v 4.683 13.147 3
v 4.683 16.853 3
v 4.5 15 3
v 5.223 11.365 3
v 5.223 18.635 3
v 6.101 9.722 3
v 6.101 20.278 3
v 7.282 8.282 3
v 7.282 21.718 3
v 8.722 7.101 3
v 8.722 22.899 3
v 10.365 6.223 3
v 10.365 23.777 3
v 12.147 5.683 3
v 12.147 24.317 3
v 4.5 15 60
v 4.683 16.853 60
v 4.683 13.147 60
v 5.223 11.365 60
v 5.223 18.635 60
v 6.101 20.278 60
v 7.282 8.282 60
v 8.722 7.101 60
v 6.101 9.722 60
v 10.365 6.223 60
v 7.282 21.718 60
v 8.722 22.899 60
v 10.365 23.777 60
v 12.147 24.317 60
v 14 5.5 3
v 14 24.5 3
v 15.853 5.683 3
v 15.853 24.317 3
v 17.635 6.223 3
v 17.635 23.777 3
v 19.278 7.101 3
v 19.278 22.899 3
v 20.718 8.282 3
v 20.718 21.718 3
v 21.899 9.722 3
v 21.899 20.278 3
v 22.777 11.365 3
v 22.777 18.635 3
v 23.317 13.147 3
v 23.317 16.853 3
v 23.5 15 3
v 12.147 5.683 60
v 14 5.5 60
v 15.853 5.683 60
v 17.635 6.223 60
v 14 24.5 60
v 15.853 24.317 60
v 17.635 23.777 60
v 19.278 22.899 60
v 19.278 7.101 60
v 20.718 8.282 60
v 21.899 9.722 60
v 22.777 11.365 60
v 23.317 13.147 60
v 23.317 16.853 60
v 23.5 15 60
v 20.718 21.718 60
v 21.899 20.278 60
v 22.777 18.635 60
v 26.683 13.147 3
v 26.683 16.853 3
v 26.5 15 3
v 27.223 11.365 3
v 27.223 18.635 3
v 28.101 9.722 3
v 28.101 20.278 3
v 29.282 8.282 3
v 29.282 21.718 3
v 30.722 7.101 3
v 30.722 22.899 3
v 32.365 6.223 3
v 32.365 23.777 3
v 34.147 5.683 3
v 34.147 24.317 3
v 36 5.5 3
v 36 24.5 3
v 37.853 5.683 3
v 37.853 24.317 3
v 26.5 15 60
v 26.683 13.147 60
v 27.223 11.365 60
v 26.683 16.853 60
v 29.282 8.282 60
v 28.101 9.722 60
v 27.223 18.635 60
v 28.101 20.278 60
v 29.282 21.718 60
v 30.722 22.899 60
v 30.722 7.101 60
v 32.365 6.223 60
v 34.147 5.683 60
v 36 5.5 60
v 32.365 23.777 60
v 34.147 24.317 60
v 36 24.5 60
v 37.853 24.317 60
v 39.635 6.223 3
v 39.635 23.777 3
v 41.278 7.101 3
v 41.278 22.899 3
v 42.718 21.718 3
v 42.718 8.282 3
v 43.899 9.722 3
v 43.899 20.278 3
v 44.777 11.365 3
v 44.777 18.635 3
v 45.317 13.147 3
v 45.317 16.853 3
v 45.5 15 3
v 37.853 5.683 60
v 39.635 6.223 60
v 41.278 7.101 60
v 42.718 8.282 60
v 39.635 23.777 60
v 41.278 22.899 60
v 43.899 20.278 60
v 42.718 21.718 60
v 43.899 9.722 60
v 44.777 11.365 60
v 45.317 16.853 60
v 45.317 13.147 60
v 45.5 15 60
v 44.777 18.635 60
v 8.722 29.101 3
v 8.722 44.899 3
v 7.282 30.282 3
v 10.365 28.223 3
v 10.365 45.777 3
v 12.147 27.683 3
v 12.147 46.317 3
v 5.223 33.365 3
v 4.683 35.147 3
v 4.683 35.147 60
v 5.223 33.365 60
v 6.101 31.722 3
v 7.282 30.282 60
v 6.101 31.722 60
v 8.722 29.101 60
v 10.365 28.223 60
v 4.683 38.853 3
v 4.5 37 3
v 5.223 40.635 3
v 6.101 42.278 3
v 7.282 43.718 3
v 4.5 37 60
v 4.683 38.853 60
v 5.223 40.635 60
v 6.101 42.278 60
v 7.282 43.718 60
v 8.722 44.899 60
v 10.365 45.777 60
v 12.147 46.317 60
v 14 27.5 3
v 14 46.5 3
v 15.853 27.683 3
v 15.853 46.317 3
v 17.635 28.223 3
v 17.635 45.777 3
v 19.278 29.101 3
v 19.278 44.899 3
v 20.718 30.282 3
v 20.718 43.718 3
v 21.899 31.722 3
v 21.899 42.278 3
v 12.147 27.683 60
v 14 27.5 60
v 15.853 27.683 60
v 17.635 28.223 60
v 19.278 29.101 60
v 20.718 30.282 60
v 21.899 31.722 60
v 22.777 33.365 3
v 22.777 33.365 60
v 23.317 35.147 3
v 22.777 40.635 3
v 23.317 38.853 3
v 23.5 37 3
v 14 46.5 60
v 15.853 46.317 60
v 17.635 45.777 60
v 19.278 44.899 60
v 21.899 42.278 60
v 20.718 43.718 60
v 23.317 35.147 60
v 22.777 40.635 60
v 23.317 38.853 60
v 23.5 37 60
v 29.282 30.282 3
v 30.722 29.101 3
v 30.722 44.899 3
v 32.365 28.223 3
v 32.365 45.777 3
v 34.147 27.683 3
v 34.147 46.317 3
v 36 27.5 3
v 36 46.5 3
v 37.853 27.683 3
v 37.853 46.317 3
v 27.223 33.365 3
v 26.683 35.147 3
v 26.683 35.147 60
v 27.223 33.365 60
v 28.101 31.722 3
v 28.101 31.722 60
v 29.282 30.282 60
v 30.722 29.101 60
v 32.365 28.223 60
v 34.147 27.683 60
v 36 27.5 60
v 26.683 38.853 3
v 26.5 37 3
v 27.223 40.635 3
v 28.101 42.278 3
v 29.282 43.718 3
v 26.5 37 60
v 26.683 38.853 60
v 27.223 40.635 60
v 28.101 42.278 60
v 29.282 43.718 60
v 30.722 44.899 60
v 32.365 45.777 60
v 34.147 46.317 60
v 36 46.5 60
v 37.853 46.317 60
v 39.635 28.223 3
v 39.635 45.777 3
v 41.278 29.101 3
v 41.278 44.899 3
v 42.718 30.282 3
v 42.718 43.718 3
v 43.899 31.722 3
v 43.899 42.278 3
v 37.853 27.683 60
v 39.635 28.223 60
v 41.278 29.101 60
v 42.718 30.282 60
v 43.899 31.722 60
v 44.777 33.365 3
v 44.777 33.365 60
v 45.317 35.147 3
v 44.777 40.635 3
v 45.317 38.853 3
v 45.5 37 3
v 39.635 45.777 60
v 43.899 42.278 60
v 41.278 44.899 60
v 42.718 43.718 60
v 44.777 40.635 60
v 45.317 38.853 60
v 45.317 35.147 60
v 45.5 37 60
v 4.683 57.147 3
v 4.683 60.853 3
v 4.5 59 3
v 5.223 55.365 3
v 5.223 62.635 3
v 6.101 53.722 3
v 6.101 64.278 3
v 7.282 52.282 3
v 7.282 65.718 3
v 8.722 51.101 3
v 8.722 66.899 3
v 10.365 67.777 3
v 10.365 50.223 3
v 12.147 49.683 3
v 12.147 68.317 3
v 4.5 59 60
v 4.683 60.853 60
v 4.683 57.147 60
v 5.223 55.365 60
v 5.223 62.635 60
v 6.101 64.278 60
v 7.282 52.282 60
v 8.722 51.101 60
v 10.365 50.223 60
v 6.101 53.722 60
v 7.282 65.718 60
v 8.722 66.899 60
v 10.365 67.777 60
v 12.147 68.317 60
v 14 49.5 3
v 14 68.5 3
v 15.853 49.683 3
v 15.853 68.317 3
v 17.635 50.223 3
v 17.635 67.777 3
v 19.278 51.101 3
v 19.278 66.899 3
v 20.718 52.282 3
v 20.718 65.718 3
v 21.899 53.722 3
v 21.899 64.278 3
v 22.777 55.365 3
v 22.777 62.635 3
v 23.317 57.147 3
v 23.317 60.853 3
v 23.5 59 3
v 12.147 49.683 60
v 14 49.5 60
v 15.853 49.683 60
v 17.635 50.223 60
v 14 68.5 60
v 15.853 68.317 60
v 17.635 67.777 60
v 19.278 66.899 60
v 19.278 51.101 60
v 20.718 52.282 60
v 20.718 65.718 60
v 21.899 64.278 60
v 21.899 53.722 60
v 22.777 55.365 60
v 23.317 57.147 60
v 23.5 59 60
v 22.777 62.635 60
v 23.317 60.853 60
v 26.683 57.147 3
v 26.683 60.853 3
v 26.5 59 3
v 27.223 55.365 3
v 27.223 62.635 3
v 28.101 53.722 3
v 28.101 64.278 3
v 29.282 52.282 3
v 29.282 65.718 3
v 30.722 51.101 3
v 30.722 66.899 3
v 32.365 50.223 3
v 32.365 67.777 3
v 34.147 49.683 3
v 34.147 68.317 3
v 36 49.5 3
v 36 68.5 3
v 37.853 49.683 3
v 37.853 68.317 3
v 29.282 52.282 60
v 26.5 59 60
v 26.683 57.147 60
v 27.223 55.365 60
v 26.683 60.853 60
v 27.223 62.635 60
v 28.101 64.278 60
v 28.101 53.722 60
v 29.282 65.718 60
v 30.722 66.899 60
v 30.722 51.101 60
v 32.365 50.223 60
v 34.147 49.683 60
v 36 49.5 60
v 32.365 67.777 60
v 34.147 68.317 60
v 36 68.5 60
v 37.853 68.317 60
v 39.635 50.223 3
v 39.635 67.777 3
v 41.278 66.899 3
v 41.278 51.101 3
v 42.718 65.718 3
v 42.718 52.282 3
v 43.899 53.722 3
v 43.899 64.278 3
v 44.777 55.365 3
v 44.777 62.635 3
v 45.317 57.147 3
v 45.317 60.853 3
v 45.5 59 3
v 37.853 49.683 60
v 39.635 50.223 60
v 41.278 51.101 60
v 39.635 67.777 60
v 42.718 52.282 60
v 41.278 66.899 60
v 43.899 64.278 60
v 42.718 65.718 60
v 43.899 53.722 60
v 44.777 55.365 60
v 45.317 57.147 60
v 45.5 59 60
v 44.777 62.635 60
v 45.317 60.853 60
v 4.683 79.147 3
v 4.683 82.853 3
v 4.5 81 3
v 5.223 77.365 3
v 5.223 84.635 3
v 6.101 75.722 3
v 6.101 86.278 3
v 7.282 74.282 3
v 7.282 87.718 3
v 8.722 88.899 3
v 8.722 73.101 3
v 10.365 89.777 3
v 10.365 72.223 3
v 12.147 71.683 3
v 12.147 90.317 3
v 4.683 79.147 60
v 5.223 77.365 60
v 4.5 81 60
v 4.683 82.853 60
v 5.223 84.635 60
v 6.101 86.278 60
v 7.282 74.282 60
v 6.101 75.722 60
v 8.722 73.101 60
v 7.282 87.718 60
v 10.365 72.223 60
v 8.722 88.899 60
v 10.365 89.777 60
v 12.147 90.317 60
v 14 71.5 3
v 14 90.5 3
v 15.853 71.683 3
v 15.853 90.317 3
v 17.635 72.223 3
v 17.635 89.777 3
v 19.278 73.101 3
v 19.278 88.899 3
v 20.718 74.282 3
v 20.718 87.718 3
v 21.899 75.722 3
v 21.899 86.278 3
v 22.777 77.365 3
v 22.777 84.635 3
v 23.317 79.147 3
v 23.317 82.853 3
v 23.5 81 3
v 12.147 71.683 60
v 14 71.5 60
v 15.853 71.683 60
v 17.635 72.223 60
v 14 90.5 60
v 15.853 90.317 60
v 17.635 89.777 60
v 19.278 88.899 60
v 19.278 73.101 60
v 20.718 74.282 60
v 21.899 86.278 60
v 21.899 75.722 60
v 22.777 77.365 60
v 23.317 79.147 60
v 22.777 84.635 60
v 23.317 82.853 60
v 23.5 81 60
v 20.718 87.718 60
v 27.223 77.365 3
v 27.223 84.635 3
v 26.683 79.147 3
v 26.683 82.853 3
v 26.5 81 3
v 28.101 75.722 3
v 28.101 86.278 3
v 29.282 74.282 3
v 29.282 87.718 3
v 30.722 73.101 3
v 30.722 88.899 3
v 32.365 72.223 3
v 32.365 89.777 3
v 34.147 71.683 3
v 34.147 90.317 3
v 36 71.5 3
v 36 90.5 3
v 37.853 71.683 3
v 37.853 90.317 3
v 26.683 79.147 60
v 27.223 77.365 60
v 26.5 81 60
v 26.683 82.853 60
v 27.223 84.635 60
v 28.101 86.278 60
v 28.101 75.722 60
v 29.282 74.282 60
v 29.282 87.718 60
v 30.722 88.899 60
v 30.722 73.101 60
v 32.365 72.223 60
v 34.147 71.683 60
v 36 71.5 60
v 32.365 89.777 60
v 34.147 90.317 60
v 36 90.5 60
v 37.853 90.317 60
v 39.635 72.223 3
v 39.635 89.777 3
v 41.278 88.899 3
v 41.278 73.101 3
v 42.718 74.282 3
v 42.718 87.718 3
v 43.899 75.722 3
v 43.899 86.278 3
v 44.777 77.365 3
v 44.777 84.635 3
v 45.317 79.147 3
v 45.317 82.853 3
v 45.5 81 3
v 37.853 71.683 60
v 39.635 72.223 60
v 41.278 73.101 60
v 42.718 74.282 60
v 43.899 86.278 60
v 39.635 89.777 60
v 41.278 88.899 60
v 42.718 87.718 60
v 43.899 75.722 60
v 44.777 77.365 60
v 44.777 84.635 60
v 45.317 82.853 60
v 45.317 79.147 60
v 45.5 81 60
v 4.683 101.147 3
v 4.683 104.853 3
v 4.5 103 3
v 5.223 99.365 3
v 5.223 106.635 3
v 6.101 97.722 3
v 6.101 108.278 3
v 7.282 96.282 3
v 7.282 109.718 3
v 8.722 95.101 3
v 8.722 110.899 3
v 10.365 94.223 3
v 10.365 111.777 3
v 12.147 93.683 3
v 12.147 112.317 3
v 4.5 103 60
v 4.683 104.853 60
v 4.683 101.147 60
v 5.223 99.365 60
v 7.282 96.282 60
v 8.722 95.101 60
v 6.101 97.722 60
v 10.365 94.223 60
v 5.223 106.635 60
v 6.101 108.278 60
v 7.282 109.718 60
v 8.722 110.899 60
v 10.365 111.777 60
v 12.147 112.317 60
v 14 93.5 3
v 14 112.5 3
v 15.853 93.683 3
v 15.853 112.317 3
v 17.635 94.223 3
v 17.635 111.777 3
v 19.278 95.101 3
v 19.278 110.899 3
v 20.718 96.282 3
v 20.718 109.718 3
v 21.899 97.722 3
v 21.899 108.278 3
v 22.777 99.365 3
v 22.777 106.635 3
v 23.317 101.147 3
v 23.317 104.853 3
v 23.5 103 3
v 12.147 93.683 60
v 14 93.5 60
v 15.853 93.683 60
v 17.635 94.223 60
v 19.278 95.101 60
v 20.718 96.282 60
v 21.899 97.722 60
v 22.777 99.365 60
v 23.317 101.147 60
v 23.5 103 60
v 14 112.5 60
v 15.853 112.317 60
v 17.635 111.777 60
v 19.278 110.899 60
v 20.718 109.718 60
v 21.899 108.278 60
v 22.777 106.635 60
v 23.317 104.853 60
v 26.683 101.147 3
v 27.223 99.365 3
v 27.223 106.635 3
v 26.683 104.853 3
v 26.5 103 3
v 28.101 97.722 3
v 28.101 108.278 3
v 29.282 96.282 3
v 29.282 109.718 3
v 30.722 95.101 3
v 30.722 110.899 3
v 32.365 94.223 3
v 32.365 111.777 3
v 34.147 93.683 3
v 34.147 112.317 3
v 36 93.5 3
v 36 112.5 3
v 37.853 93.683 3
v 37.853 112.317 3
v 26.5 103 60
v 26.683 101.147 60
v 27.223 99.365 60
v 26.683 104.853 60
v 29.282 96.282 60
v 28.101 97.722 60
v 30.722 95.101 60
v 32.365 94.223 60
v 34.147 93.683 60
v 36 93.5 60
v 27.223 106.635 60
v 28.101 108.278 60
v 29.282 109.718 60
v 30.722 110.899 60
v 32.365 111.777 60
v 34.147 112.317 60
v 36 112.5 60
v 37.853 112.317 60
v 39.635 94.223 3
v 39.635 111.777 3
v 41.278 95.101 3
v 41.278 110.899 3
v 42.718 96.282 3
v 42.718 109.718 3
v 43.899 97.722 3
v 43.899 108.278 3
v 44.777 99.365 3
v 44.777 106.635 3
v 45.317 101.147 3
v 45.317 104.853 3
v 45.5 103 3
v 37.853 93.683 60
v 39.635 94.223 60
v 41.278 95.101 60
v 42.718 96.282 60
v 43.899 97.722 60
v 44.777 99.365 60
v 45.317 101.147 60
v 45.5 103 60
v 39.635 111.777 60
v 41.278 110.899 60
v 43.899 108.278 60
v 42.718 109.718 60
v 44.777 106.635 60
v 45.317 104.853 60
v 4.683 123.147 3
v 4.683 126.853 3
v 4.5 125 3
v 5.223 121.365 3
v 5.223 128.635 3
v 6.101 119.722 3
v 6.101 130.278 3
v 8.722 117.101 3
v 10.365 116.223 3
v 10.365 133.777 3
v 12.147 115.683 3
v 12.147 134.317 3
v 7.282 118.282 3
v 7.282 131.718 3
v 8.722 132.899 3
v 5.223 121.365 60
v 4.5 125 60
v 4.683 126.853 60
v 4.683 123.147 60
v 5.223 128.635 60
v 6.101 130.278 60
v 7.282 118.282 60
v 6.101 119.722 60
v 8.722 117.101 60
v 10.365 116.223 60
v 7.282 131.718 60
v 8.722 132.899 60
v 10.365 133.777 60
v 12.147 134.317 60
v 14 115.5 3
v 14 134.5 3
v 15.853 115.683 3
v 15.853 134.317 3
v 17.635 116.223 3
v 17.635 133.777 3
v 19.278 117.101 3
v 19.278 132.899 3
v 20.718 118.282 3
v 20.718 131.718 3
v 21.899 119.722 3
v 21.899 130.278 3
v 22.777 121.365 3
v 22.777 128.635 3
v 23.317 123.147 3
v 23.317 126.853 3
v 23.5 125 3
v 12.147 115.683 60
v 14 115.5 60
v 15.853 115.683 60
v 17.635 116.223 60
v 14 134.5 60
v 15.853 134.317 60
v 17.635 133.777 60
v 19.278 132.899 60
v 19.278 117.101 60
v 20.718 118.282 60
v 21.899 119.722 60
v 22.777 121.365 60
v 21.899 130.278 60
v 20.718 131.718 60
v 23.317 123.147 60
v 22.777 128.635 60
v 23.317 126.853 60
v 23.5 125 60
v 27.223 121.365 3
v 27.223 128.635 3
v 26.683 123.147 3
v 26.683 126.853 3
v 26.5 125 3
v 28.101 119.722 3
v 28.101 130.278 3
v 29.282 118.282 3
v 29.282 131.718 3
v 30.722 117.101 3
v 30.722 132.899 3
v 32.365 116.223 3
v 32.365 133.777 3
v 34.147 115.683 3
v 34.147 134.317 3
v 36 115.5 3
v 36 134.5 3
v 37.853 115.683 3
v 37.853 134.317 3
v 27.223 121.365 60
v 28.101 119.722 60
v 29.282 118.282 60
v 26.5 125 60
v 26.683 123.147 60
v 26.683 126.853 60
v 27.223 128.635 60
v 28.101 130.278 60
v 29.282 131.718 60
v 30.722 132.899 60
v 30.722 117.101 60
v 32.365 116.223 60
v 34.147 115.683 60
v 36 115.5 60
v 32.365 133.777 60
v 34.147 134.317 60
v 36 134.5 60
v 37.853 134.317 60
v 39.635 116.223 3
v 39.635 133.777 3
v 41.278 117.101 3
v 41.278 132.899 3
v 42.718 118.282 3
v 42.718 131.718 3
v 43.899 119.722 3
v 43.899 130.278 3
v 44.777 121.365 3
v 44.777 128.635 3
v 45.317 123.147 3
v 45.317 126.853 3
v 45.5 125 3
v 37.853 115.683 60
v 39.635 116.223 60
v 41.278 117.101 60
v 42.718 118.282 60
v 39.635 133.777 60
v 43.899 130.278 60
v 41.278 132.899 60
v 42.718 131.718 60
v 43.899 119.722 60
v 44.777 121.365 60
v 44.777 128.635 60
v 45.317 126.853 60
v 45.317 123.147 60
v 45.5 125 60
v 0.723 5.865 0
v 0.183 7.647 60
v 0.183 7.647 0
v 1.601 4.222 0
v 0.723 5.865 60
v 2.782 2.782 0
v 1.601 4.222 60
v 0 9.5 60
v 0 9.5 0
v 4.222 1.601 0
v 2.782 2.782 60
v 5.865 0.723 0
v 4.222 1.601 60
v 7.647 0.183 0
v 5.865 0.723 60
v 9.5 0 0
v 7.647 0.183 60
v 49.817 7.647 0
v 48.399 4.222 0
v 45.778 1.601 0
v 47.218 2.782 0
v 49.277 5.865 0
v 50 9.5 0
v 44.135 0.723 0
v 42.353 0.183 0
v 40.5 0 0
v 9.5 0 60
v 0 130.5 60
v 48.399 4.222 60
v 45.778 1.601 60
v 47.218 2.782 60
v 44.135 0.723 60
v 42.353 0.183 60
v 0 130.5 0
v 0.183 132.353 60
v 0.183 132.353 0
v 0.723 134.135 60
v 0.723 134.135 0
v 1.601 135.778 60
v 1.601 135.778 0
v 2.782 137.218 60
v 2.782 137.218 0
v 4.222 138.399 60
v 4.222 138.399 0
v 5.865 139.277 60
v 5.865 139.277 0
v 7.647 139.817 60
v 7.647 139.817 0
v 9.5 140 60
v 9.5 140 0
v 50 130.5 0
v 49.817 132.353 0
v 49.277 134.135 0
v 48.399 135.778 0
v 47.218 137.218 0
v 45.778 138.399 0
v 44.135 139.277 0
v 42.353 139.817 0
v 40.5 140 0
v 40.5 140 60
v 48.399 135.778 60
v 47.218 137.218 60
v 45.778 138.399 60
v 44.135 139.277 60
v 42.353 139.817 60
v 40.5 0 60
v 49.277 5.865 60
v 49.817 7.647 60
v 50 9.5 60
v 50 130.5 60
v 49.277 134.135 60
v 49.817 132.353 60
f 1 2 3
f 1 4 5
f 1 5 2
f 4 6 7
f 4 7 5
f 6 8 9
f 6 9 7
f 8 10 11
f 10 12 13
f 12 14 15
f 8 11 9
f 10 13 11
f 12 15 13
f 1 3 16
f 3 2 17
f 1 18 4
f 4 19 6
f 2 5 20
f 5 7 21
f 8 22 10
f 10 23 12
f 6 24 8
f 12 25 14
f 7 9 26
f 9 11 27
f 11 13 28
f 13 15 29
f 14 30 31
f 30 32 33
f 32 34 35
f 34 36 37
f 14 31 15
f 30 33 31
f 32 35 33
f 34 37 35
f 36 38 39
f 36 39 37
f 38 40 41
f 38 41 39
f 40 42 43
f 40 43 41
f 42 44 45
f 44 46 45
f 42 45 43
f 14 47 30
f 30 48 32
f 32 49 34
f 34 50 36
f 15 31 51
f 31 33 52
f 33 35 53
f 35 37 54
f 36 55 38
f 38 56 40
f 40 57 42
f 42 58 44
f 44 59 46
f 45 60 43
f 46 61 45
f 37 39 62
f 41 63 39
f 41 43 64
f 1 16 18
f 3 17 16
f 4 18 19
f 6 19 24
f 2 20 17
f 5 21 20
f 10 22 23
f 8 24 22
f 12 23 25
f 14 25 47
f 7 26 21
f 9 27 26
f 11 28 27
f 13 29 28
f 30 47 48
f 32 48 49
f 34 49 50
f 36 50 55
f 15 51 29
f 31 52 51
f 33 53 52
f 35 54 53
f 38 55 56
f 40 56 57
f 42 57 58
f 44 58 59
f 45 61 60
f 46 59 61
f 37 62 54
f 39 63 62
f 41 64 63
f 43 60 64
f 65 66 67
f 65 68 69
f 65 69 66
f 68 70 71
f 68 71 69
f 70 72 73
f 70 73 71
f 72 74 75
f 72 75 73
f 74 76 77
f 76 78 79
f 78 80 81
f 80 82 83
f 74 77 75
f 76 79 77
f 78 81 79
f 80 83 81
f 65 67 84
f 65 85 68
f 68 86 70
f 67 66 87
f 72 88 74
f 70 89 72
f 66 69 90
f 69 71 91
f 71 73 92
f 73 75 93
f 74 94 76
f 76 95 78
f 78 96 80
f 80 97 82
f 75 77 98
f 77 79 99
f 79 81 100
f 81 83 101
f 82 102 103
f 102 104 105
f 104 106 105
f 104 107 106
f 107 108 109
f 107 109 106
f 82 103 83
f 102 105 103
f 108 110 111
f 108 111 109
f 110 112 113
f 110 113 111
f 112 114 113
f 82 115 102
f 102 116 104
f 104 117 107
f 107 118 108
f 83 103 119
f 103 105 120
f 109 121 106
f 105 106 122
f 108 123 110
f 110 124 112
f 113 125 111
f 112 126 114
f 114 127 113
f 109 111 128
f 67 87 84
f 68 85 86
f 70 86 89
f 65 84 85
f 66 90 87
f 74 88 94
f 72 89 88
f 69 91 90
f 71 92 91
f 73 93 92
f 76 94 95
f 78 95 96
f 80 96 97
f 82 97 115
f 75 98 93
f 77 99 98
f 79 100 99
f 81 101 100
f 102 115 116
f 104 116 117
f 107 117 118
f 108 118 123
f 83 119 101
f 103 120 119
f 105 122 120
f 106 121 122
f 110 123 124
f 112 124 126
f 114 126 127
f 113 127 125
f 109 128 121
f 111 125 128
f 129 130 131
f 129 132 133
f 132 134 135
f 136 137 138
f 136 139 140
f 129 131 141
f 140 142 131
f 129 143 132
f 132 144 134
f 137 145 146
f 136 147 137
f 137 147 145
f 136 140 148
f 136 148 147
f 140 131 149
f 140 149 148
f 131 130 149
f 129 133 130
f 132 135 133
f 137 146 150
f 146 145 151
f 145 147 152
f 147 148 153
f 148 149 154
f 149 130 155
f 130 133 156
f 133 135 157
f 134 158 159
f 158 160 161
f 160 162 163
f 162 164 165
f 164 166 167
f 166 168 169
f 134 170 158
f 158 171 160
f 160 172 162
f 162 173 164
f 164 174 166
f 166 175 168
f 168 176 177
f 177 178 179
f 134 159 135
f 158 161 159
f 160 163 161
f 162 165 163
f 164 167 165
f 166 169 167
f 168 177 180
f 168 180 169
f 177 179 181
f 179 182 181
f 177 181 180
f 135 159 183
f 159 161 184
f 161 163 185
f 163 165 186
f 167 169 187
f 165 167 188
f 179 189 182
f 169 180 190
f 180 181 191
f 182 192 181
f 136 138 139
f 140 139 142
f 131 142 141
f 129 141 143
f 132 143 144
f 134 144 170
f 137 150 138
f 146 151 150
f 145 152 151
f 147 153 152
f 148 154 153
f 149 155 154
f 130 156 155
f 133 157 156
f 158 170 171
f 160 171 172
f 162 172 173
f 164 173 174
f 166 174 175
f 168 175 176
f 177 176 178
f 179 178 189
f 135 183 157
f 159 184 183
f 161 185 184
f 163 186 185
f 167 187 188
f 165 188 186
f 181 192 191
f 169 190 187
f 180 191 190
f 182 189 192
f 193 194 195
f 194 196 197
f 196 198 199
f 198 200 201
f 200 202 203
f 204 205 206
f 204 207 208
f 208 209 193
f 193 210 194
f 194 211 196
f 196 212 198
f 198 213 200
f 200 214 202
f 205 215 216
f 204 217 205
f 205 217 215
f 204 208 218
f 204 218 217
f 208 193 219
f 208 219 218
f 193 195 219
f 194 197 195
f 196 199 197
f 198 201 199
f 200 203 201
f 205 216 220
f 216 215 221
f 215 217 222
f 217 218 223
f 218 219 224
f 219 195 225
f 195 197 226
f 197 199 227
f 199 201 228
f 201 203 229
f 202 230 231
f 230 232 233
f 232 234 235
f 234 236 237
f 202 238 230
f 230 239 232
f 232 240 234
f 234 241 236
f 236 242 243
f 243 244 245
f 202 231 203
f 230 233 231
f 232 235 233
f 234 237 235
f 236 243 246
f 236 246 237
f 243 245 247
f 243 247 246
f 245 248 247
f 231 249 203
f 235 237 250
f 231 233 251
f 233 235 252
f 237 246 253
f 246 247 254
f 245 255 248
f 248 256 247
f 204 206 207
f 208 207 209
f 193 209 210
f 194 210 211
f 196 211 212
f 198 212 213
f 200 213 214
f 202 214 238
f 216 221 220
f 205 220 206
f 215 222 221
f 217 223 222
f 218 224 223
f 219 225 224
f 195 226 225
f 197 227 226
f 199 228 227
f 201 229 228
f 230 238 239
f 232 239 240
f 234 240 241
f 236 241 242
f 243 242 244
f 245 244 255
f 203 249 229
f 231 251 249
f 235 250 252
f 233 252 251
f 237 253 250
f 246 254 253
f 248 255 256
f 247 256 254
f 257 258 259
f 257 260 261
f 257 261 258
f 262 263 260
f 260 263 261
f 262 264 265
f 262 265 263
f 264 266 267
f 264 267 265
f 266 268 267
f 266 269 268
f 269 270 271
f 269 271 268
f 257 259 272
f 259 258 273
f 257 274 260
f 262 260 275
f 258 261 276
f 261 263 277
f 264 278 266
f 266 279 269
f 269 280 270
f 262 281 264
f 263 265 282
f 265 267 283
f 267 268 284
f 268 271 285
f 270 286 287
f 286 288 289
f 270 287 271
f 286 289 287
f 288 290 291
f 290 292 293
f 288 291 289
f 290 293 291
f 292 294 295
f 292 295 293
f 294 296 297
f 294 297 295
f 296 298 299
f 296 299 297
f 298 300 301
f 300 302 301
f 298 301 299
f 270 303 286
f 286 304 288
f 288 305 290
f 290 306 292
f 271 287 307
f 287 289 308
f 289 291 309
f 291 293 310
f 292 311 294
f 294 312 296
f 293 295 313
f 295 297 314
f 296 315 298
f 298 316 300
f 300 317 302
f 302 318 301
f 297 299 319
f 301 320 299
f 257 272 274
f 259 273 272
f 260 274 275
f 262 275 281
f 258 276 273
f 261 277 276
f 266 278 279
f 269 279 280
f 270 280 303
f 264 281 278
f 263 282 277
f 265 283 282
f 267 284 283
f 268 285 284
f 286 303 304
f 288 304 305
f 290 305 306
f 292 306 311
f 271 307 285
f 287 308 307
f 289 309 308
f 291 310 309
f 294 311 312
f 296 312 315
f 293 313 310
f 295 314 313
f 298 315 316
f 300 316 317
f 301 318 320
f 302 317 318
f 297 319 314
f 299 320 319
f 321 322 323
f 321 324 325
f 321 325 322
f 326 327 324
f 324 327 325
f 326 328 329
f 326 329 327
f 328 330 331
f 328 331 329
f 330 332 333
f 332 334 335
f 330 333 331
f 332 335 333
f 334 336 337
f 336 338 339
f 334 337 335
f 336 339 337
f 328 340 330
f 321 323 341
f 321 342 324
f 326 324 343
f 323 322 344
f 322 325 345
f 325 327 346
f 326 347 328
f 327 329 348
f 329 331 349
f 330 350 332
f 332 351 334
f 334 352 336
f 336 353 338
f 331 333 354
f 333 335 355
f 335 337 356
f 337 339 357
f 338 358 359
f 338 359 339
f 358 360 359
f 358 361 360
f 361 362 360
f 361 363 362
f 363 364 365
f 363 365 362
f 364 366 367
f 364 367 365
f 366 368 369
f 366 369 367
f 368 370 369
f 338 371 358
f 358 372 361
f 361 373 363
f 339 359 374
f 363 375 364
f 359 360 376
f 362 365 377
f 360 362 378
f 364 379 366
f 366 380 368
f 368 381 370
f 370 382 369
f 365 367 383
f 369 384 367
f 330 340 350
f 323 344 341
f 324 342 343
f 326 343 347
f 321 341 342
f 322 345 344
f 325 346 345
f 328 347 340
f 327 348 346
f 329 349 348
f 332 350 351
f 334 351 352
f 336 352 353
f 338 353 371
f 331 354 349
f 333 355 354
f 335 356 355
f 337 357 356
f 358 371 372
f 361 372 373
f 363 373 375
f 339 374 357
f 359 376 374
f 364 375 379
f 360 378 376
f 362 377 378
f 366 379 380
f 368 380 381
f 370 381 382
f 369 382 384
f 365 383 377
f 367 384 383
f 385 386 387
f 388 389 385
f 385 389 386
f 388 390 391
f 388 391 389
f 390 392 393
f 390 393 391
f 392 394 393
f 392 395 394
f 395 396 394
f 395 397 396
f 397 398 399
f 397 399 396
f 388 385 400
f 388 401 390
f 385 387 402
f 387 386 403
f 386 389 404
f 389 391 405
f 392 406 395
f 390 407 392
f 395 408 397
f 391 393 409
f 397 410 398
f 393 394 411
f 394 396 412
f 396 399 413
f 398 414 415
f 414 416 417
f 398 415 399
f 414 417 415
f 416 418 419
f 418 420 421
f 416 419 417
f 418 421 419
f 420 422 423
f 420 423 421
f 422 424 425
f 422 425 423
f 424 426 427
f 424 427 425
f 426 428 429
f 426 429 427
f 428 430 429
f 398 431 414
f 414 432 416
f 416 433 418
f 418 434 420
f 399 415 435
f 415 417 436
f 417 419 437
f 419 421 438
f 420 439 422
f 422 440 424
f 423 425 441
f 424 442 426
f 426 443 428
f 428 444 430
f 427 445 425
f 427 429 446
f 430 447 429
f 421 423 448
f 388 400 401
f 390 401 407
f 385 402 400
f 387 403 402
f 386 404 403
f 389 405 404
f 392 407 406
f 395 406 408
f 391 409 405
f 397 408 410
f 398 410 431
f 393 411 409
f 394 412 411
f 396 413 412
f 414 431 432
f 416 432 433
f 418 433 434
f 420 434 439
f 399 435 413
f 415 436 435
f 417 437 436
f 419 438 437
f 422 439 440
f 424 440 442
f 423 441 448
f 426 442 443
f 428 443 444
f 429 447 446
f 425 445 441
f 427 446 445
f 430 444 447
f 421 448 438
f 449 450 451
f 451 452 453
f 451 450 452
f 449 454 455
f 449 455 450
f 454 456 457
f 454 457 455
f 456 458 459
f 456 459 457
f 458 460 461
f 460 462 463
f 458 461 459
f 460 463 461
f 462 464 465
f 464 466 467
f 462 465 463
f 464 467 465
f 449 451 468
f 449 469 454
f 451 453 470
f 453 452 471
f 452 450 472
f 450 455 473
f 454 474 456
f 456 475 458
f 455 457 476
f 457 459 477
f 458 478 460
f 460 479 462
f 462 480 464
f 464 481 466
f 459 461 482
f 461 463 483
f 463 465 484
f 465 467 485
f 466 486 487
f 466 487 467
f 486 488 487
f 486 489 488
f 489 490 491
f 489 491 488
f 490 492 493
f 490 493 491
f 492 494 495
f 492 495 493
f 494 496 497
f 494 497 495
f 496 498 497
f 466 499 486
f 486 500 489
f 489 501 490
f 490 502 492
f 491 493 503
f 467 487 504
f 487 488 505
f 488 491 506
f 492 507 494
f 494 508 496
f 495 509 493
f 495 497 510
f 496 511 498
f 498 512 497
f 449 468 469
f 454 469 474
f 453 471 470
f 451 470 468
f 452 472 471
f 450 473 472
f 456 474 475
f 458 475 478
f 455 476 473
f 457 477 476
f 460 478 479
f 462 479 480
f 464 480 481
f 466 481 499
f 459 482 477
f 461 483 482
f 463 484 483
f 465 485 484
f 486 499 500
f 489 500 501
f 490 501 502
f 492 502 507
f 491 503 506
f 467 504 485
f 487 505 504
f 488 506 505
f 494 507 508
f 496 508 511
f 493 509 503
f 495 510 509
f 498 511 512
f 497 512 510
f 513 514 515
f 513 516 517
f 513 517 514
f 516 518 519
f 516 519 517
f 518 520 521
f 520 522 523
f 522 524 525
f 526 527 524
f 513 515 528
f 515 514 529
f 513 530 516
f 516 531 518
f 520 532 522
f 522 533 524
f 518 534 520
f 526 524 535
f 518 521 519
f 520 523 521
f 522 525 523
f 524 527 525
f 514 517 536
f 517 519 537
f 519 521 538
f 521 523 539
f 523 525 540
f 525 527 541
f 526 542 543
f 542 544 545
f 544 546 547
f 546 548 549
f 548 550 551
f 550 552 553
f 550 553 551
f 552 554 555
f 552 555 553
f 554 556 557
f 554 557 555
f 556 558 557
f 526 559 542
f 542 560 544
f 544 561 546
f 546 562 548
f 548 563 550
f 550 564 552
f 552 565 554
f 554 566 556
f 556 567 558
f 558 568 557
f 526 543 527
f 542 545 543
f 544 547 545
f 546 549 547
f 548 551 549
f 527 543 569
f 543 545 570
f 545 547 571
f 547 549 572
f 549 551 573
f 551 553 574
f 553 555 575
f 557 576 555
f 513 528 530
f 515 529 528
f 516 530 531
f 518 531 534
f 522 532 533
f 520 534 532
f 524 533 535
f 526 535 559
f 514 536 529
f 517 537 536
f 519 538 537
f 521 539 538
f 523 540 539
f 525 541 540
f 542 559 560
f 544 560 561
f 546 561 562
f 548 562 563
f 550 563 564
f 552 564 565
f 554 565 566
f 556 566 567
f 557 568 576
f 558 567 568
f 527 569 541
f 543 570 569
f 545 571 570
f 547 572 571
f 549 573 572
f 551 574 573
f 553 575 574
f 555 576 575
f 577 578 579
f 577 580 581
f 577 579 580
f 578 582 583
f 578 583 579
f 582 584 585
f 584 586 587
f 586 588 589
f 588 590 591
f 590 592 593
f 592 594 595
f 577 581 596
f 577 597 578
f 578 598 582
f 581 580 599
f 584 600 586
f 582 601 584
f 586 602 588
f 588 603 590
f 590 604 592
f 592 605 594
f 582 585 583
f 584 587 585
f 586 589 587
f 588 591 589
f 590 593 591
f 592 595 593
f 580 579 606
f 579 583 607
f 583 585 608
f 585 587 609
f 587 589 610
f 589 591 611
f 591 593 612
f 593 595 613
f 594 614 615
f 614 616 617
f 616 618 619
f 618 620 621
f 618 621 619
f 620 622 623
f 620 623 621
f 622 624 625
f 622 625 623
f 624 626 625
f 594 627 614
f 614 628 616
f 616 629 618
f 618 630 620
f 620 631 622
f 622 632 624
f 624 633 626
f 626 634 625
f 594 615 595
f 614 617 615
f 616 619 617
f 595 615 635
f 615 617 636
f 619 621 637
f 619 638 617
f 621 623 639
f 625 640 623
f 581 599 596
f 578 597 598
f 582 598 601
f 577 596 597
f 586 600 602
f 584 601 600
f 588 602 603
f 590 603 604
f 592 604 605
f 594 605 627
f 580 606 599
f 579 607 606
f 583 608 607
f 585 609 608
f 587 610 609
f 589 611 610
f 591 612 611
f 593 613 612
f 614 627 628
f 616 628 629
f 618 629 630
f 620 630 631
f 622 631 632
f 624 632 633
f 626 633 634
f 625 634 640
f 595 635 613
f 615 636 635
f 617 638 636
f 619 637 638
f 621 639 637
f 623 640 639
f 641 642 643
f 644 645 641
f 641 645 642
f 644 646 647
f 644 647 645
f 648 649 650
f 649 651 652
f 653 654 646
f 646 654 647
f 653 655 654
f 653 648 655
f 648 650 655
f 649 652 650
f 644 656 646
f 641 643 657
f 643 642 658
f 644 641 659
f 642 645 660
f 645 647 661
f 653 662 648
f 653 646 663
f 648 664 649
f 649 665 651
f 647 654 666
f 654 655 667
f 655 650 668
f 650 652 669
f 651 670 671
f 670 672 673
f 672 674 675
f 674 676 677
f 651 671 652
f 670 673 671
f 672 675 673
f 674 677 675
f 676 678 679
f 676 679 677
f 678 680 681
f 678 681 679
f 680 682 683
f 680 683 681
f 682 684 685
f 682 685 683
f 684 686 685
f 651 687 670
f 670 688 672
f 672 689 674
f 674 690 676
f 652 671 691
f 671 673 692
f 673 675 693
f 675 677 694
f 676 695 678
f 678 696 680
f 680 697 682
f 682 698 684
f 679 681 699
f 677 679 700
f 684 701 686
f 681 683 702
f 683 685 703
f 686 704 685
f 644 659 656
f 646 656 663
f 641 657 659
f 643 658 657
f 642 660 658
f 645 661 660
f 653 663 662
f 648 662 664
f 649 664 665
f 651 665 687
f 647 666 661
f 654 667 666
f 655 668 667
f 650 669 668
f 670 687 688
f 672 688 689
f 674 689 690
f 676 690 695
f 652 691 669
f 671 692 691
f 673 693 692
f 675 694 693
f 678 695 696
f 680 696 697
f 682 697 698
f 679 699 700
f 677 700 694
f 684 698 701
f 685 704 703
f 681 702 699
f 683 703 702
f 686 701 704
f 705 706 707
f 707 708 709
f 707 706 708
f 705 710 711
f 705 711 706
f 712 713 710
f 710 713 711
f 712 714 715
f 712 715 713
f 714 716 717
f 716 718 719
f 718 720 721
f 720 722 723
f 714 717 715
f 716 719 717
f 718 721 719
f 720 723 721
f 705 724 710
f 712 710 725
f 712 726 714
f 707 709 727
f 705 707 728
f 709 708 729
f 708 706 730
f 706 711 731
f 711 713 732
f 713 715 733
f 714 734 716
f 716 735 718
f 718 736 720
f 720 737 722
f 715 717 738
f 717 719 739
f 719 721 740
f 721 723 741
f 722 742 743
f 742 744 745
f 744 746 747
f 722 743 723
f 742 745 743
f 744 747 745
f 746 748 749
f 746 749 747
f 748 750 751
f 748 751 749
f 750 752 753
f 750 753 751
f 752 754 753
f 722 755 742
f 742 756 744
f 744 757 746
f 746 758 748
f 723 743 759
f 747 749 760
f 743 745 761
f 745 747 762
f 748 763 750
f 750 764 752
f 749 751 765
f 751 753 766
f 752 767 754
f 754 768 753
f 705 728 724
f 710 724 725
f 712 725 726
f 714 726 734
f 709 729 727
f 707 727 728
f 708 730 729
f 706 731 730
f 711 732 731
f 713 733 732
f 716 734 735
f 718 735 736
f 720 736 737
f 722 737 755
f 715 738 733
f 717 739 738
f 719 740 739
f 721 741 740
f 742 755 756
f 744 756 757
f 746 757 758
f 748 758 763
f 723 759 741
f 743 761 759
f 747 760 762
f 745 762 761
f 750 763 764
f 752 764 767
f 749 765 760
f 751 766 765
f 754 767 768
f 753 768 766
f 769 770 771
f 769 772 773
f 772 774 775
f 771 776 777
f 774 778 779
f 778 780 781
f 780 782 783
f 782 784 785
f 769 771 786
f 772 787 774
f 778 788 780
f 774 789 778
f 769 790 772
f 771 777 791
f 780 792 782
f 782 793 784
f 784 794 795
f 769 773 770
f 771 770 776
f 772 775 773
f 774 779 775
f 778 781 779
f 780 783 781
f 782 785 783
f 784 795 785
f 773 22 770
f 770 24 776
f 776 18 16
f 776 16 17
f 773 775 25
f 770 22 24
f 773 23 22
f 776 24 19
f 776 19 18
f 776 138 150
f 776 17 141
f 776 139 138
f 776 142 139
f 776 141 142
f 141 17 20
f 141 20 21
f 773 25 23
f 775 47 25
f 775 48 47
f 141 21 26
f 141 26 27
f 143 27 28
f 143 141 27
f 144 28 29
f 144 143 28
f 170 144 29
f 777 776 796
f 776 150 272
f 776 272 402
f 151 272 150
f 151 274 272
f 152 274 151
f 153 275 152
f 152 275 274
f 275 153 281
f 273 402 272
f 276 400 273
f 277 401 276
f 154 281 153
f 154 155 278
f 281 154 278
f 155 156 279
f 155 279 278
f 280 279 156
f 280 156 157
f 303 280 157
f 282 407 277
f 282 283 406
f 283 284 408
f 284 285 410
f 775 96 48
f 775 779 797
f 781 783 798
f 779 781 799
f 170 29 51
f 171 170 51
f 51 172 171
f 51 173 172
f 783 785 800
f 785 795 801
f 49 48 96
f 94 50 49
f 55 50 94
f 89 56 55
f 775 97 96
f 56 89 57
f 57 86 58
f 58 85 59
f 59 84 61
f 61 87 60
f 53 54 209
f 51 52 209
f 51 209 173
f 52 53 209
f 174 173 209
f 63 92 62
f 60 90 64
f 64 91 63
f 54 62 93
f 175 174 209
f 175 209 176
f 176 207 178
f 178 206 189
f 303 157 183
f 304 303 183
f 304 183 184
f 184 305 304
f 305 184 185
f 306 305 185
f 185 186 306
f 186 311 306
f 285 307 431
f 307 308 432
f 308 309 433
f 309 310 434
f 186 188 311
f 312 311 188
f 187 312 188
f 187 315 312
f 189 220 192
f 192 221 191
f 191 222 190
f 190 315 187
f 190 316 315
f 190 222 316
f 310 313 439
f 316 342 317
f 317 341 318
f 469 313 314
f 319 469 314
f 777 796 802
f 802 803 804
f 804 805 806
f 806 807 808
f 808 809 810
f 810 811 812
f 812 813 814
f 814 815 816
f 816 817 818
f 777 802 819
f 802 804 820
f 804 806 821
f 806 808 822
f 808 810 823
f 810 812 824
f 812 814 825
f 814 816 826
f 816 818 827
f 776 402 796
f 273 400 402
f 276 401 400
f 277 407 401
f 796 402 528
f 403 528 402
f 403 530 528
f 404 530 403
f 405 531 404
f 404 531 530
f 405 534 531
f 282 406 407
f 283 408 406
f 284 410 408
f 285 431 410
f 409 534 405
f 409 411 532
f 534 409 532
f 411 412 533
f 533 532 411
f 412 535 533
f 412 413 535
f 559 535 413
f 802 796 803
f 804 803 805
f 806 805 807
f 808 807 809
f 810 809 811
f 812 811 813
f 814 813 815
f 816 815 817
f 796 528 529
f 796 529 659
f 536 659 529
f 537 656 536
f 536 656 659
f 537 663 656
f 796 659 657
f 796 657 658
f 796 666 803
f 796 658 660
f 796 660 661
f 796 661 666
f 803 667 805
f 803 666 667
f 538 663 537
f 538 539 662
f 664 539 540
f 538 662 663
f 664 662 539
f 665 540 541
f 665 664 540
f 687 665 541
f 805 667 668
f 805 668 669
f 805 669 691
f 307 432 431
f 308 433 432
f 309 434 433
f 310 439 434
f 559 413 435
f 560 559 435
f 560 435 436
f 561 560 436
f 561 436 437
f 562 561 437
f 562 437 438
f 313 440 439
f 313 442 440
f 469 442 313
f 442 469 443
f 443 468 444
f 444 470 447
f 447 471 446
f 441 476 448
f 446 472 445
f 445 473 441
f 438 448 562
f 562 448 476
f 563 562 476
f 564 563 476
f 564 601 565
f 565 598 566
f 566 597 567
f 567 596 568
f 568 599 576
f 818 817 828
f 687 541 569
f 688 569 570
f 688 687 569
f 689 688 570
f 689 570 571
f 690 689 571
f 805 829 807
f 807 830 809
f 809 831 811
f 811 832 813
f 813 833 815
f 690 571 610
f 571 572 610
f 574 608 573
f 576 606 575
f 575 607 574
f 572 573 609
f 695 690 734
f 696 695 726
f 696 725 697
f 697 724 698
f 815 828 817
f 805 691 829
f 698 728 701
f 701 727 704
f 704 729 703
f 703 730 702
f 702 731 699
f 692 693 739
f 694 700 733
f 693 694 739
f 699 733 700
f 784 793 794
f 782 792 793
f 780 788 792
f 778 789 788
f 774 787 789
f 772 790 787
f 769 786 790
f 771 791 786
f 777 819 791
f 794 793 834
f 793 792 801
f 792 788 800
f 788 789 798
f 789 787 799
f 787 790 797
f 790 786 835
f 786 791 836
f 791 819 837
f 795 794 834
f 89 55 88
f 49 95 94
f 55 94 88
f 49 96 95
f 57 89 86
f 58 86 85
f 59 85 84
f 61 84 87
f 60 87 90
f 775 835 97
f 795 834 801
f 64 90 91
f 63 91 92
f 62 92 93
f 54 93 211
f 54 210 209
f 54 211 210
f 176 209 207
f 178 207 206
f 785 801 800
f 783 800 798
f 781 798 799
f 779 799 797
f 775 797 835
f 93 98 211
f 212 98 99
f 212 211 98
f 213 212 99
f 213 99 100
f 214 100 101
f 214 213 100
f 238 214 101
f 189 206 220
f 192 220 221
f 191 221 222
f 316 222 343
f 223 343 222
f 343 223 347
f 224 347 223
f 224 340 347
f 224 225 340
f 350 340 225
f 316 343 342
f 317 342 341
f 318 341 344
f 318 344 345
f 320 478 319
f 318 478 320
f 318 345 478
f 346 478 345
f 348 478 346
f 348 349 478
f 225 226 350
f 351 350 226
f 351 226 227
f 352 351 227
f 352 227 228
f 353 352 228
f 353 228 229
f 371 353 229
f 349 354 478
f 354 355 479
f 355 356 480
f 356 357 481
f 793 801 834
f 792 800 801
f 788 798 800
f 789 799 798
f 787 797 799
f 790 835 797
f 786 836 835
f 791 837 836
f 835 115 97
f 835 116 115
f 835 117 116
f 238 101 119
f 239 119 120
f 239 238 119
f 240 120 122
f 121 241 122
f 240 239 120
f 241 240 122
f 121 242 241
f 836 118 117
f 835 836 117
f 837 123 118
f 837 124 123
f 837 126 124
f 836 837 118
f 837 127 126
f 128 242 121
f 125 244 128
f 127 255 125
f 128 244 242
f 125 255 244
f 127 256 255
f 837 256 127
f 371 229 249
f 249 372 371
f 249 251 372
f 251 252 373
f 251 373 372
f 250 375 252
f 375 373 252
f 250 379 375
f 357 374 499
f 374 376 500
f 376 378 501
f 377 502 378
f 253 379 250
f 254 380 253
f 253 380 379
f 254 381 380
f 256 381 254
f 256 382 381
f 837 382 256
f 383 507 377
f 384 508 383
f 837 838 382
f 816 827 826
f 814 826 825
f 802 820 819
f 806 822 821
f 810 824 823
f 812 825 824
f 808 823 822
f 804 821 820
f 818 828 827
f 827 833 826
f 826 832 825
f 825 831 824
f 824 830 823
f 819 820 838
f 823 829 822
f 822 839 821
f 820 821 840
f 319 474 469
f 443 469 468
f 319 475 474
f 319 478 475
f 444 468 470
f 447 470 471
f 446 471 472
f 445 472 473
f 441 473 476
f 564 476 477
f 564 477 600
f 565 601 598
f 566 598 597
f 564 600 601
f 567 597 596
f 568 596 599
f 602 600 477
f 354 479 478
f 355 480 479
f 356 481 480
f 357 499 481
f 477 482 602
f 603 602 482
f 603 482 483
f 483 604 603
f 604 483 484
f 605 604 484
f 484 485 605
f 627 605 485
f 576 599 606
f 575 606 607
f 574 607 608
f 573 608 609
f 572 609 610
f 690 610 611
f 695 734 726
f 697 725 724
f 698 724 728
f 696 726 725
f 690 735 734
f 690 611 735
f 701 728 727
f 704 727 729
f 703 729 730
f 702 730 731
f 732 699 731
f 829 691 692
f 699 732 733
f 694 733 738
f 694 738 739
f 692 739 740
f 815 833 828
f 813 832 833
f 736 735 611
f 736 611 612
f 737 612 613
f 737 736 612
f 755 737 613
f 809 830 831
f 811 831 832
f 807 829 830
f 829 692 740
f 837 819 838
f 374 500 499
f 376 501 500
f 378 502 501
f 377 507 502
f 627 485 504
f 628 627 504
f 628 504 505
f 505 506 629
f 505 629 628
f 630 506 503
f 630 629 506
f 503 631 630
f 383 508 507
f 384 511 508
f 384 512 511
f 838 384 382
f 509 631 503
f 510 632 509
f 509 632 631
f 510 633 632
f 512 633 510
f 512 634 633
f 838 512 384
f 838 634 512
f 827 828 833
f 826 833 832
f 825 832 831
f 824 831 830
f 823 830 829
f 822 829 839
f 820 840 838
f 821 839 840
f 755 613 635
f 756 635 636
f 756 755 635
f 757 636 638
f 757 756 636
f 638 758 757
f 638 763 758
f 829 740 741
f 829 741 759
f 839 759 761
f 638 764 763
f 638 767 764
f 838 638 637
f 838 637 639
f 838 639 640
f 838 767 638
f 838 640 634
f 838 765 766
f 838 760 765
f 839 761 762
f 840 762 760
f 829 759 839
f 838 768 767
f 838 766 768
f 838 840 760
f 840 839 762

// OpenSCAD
$fn = 32;

bottom_thick = 3;
gap = 22;
height = 60;
length = 140;
pen_diameter = 19;
width = 50;

module pen_cut() {
  cylinder(h=height, d=pen_diameter, center=true);
}

module rounded_box(size = [10, 10, 5], r = 2) {
  translate([size[0] / 2, size[1] / 2, 0])
    linear_extrude(height=size[2])
      minkowski() {
        square([size[0] - 2 * r, size[1] - 2 * r], center=true);
        circle(r=r);
      }
}

difference() {
  rounded_box([width, length, height], r=pen_diameter/2);
  row_padding_x = 14;
  first_hole_center_y = length / 2 - 2.5 * gap;

  for (k = [0:5]) {
    hole_center_y = first_hole_center_y + k * gap;

    translate([row_padding_x, hole_center_y, bottom_thick])
      cylinder(h=height, d=pen_diameter);

    translate([width - row_padding_x, hole_center_y, bottom_thick])
      cylinder(h=height, d=pen_diameter);
  }
}
